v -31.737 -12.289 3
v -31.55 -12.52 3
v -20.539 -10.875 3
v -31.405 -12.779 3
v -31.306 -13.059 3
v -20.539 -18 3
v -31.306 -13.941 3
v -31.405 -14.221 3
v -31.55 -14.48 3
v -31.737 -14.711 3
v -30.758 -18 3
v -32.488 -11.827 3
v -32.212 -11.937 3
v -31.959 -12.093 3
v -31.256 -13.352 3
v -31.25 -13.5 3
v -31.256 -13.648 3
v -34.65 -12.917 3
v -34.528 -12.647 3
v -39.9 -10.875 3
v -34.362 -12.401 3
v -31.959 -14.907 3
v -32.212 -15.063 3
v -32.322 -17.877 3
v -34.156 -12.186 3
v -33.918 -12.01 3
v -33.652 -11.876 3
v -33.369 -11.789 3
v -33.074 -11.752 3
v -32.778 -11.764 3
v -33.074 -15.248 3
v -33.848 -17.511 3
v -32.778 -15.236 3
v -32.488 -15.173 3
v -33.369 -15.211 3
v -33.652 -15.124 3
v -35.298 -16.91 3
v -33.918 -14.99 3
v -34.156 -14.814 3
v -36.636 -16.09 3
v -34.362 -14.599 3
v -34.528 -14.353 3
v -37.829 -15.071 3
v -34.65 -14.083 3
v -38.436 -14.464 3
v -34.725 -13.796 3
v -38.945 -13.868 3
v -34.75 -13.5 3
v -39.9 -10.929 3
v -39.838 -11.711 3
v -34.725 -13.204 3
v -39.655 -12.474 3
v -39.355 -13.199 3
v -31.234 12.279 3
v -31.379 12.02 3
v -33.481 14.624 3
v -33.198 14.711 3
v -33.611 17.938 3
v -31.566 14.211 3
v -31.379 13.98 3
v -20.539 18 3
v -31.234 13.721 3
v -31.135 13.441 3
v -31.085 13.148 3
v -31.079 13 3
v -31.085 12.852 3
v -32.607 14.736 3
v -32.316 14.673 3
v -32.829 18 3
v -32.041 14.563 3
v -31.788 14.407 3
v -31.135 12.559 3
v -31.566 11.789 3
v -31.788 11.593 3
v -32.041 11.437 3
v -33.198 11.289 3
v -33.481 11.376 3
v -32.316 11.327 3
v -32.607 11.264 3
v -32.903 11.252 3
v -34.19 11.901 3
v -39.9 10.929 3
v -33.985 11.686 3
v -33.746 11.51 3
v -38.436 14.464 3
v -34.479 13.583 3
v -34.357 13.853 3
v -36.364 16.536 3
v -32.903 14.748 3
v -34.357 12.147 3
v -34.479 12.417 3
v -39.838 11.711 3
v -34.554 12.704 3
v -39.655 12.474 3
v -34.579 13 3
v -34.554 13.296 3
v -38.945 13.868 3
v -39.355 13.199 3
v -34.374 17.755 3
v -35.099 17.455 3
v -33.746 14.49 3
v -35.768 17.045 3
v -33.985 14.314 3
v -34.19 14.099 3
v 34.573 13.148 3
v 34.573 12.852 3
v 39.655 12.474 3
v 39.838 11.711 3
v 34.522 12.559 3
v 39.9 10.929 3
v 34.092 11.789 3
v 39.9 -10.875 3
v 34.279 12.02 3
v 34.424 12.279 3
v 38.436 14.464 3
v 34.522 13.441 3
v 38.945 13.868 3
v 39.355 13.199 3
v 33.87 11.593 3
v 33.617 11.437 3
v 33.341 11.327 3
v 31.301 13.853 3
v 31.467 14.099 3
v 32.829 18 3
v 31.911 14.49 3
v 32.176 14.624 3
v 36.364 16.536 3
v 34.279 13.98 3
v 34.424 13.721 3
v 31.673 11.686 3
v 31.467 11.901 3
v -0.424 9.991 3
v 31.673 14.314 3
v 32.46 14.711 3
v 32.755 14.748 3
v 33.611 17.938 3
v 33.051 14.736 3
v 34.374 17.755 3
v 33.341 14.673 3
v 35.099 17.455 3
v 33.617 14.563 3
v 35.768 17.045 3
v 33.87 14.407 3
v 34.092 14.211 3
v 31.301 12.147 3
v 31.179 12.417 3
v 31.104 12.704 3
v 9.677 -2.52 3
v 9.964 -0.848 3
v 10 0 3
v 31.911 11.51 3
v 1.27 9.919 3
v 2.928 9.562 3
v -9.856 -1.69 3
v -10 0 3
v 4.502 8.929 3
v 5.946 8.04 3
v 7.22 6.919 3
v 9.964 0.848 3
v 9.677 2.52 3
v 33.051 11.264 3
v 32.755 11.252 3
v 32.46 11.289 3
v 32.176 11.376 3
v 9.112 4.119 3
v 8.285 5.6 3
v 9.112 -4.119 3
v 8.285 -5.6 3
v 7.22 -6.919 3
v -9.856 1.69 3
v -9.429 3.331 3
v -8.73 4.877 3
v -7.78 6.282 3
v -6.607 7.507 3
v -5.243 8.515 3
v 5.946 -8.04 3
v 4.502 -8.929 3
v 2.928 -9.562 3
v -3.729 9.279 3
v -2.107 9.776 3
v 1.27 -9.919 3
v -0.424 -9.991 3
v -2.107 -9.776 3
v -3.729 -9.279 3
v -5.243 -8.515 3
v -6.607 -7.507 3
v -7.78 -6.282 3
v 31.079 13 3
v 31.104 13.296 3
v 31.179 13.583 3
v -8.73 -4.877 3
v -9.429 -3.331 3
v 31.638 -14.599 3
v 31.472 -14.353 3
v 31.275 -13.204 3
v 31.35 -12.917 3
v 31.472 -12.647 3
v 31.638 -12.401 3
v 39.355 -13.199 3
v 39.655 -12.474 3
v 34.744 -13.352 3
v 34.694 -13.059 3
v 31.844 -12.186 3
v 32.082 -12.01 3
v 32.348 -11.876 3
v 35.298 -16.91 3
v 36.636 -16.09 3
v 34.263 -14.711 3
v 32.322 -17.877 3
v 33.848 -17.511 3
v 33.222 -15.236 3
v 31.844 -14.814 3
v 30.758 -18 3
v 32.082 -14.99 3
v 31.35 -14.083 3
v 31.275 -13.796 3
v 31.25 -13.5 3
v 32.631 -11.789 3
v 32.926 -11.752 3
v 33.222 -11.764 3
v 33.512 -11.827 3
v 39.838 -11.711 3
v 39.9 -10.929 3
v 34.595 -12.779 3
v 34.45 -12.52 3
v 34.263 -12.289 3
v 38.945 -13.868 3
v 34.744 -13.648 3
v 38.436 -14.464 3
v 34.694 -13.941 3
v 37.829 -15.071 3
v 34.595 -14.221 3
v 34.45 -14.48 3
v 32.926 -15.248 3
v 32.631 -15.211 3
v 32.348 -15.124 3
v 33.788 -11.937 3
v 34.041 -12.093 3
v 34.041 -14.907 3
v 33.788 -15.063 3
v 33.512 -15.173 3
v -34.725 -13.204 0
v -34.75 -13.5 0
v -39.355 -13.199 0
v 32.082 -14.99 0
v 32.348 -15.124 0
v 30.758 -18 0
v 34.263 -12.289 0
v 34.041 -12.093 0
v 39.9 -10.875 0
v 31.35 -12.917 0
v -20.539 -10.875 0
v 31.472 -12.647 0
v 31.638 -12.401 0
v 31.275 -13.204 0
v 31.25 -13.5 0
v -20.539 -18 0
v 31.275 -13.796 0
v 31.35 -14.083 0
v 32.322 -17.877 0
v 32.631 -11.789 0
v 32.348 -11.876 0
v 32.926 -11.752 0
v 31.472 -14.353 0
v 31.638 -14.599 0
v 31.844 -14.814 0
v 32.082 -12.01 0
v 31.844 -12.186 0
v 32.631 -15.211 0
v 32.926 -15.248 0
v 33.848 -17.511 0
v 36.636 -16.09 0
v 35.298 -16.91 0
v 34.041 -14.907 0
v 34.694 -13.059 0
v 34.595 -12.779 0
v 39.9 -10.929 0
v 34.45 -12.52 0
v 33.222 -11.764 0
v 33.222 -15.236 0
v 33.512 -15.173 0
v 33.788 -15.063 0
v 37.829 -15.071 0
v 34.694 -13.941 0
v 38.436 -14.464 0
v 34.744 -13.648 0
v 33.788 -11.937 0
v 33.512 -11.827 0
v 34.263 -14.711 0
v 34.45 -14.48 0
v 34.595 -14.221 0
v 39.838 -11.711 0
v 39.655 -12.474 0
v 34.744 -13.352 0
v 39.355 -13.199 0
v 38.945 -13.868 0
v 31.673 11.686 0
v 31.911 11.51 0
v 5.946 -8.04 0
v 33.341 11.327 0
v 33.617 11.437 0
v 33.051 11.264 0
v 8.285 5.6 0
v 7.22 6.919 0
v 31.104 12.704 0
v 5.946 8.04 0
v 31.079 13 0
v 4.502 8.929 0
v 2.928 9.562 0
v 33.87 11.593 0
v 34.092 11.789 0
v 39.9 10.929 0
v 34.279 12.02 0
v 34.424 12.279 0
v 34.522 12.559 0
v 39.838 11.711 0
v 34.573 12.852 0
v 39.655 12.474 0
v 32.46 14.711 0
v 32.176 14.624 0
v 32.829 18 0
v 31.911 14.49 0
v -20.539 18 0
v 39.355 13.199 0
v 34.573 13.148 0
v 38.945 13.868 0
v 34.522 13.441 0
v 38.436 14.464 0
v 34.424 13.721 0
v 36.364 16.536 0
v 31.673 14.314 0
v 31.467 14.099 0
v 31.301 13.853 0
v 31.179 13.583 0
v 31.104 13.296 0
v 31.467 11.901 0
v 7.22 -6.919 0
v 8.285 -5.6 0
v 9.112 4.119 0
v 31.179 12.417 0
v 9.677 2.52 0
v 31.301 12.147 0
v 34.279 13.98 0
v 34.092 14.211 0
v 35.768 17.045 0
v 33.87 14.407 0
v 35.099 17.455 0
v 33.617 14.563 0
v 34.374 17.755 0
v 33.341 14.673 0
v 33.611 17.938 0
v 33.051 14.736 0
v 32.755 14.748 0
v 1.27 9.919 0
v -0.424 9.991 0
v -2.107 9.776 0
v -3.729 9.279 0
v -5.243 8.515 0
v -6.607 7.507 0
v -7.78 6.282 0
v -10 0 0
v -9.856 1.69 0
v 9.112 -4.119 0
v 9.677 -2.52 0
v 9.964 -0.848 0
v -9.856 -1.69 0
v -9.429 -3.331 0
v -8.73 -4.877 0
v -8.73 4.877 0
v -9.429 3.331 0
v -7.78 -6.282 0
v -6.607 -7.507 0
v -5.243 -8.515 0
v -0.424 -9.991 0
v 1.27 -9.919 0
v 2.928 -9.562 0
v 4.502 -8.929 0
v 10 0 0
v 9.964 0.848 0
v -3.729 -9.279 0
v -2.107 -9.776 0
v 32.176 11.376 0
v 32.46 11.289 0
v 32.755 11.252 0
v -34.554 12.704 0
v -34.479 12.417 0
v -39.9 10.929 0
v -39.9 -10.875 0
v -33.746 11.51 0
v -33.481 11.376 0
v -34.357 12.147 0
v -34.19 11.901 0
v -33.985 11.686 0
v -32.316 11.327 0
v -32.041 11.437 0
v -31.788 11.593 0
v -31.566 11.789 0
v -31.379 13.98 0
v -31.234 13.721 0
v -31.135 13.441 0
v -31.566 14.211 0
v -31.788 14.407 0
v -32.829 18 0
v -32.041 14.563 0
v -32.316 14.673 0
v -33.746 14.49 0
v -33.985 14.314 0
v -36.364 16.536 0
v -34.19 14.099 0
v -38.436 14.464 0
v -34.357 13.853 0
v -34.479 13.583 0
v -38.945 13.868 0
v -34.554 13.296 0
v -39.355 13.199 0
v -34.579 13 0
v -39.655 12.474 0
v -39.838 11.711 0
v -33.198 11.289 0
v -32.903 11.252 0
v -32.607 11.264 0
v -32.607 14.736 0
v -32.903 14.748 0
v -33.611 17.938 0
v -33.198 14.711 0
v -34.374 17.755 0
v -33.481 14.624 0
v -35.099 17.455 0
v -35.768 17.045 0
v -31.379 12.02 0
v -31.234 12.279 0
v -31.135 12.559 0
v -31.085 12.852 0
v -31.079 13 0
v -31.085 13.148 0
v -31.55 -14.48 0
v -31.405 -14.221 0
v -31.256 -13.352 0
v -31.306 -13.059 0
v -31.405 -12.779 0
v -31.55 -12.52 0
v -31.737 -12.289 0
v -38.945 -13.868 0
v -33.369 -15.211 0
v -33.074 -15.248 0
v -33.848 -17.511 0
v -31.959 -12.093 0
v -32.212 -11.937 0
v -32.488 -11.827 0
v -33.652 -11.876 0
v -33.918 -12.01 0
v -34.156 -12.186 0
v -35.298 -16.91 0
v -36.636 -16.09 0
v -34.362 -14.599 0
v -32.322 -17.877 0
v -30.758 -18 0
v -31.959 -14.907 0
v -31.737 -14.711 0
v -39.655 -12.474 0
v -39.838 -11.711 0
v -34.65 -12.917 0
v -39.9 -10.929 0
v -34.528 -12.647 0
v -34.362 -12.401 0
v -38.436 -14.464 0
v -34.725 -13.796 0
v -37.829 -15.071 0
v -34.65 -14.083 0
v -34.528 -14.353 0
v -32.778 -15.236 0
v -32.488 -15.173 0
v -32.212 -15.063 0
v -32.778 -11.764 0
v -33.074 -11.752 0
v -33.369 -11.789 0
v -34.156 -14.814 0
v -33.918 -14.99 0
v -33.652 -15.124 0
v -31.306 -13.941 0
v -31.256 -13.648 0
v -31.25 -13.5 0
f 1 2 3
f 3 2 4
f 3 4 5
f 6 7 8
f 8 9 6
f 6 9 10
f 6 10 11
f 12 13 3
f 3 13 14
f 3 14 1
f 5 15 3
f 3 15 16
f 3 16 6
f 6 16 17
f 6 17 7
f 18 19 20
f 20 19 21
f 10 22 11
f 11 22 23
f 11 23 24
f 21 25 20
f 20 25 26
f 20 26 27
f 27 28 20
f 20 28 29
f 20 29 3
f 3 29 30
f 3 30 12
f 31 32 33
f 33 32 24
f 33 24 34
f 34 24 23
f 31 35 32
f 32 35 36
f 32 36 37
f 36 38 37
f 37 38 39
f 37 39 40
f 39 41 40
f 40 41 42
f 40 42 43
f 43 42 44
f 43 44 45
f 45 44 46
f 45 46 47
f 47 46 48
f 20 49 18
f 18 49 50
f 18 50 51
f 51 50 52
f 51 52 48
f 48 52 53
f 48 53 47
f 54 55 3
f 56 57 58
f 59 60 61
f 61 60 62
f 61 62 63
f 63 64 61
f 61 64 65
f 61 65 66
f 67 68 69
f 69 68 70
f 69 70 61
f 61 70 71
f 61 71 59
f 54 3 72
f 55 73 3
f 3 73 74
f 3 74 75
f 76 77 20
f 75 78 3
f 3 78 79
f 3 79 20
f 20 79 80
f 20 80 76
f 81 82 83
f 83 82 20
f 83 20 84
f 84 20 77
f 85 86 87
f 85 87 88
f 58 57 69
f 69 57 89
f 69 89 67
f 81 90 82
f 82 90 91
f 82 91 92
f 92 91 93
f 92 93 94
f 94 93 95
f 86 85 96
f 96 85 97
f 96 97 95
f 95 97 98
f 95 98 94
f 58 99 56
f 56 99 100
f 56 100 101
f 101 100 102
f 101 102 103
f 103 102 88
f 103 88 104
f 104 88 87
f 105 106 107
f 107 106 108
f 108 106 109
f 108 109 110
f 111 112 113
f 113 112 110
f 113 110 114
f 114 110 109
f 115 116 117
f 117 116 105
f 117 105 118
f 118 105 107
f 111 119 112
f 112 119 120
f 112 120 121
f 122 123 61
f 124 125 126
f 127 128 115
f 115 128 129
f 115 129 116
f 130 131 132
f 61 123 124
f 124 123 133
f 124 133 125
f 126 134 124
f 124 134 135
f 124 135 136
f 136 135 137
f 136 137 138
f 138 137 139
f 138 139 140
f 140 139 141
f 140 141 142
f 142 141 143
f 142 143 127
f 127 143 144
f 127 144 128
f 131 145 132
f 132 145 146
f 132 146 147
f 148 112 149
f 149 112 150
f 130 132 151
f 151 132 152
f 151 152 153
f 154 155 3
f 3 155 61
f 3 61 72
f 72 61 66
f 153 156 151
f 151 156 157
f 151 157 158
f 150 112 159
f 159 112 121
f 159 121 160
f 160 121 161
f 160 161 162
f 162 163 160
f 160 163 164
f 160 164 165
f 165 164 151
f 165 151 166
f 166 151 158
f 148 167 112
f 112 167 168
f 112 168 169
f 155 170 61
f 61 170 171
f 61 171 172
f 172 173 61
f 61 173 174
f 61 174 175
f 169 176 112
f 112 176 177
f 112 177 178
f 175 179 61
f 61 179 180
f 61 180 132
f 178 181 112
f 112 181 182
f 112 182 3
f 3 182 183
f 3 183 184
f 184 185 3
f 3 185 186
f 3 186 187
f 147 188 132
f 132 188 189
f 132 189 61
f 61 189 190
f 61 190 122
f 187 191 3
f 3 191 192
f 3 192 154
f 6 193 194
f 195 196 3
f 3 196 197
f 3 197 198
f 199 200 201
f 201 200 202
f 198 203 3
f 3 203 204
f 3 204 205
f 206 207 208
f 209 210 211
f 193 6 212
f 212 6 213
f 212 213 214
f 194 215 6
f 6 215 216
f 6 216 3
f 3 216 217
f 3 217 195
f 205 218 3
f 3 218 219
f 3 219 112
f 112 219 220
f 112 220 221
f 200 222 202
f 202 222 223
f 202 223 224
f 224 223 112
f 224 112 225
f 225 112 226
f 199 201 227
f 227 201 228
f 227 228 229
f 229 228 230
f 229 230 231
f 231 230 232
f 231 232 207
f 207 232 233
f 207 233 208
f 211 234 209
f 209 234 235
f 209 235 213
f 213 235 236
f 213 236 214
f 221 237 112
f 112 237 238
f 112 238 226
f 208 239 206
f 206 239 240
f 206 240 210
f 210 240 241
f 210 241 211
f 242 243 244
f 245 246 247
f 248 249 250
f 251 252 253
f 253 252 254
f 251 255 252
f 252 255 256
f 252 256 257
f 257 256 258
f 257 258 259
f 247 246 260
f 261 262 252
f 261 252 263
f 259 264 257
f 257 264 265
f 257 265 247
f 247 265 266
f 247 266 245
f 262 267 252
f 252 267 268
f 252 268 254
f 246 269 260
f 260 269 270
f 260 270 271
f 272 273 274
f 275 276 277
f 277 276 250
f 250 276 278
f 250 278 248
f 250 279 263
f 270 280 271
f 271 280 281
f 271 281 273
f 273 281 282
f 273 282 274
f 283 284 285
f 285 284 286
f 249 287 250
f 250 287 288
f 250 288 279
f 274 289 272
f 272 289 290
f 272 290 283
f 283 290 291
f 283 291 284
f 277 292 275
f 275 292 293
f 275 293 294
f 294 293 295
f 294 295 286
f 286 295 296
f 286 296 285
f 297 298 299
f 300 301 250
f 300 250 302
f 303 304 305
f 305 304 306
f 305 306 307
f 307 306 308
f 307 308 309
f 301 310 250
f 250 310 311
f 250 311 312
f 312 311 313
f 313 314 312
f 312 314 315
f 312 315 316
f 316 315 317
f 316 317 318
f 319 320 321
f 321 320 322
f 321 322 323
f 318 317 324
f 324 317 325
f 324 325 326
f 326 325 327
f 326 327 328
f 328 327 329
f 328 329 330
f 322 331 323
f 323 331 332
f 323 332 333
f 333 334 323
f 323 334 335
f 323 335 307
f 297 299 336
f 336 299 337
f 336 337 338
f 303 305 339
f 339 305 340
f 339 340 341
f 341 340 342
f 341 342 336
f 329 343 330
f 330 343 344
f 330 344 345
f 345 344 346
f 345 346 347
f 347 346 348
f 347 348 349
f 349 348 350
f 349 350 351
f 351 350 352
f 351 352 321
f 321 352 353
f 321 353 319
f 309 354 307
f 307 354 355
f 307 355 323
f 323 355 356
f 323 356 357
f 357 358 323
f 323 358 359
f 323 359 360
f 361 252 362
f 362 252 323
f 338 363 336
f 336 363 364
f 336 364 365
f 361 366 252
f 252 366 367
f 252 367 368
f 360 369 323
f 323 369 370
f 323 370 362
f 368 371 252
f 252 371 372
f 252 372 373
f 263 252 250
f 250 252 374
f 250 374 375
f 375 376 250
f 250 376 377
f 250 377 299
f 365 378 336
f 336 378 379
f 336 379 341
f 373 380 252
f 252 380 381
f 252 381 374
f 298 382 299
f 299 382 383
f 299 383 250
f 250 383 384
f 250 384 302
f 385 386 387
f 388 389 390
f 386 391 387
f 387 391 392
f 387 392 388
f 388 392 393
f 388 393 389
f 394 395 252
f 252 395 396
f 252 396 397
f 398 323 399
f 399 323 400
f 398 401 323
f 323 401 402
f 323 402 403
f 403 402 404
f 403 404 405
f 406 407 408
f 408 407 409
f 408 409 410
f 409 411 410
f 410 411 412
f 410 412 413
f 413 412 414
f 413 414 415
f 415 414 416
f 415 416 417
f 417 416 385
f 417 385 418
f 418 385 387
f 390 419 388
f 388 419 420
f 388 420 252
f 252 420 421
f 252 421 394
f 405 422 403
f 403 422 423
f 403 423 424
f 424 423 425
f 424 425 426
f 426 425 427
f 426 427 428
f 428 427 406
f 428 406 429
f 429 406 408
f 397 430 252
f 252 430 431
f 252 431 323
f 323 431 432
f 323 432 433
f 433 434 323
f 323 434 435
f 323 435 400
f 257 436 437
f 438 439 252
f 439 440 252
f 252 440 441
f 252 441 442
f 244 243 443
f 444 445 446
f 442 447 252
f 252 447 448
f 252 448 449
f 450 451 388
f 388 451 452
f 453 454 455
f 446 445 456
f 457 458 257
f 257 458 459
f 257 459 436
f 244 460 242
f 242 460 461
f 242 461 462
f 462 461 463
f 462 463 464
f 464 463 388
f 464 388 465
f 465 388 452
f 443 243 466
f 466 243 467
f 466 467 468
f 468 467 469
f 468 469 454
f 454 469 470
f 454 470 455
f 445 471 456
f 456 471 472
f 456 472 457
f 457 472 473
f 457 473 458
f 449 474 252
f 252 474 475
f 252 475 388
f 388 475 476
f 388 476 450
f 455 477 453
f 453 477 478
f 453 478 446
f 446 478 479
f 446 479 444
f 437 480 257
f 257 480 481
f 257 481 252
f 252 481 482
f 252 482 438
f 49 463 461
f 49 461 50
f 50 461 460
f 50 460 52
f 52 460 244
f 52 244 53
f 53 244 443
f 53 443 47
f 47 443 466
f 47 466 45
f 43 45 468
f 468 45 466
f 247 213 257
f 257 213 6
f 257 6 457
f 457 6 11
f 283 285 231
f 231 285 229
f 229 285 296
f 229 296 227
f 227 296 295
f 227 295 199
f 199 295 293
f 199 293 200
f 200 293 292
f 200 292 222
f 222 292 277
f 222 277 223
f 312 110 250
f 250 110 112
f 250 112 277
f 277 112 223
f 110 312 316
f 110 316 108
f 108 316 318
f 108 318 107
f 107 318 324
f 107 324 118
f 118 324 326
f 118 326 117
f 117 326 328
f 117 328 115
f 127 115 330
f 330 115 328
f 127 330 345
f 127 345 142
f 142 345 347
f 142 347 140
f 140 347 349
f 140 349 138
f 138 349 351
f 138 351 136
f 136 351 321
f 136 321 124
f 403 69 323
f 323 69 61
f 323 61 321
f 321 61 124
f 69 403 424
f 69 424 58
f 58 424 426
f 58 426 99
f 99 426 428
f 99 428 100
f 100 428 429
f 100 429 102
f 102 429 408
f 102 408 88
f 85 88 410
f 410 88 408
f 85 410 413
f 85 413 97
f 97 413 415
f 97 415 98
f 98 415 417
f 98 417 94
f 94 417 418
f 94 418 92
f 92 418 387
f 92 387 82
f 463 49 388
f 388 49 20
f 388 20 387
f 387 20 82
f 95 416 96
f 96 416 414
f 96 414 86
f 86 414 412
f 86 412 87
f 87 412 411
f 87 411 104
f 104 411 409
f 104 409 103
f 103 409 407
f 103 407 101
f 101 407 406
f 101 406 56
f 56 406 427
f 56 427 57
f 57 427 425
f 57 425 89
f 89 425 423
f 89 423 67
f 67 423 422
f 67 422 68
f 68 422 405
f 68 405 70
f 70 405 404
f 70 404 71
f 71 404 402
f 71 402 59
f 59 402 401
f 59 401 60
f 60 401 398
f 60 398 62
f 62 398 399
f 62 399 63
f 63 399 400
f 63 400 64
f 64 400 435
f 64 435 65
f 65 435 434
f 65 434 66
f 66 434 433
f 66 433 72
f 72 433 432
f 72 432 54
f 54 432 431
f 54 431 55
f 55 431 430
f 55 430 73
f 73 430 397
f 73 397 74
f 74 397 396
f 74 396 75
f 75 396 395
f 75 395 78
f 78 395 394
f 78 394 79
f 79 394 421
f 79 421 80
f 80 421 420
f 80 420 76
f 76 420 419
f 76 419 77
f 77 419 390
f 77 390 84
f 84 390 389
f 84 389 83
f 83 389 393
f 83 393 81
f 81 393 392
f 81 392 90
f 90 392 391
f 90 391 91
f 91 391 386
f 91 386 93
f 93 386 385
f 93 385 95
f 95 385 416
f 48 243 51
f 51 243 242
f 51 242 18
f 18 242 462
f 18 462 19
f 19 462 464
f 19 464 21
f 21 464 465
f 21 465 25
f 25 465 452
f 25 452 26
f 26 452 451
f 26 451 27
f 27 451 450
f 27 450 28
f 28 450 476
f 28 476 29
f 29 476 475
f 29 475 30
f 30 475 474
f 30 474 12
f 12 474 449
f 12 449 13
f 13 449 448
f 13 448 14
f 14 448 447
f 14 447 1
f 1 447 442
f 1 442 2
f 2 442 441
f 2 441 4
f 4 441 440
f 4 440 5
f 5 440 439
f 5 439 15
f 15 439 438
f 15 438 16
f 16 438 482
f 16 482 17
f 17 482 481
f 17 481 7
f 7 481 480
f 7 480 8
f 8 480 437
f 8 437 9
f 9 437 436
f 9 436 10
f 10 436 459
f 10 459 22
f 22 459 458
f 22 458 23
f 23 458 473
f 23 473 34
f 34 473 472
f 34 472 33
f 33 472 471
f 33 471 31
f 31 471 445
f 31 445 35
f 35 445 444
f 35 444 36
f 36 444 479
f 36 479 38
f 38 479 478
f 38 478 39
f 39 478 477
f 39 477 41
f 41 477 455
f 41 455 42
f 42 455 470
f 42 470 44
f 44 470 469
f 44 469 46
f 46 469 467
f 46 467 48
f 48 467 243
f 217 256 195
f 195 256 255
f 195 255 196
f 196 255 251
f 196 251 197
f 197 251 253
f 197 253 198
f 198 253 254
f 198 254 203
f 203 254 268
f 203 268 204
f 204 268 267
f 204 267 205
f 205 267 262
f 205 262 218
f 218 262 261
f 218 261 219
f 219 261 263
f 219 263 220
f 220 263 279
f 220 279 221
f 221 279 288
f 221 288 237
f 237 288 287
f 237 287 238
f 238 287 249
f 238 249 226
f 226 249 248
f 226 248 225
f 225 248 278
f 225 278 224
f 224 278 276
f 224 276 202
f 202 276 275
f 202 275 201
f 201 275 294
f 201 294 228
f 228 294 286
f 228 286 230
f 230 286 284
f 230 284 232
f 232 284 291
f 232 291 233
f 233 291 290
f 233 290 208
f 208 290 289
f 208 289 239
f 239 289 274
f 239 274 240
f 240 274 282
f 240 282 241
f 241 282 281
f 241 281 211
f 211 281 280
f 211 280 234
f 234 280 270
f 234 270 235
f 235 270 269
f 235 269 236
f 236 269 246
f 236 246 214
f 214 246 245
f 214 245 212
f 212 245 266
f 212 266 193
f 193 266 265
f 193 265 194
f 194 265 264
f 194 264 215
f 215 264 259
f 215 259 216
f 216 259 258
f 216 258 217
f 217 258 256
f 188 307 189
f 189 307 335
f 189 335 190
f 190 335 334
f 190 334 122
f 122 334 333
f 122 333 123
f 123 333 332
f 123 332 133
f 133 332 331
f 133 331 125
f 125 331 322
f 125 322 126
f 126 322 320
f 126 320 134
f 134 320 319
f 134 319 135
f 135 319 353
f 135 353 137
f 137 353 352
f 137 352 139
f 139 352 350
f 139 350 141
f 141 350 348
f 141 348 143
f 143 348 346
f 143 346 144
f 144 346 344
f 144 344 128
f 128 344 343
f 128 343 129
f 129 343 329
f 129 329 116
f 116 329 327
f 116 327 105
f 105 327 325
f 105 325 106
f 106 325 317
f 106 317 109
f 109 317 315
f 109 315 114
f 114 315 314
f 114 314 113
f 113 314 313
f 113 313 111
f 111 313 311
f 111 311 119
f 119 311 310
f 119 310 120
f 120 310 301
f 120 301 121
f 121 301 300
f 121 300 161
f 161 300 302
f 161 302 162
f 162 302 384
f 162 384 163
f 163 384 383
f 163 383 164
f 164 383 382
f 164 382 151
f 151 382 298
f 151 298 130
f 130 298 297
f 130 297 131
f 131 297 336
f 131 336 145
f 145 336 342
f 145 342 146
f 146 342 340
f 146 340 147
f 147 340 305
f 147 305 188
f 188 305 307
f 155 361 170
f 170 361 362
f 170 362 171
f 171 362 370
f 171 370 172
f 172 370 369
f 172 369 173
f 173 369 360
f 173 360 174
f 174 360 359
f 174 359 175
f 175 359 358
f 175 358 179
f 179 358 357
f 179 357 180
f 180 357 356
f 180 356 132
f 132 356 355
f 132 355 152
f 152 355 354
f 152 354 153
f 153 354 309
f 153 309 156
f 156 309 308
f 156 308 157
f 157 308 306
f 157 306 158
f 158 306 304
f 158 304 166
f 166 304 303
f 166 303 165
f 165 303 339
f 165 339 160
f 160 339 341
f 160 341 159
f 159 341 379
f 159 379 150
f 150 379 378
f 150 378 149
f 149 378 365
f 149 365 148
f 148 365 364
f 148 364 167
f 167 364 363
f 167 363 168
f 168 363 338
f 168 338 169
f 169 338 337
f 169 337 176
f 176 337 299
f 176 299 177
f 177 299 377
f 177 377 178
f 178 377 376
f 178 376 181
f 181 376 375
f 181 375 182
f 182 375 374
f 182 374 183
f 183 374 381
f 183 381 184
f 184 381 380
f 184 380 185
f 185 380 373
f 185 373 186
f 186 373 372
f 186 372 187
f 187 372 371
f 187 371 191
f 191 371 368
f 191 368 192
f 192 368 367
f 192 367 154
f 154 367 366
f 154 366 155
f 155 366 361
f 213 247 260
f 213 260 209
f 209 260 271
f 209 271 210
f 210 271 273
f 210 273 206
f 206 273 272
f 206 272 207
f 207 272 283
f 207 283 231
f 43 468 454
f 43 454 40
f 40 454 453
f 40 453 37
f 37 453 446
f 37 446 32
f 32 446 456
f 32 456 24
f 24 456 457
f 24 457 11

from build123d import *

# Parameters (mm, degrees)
SKETCH1_R           = 1.75
SKETCH1_R_2         = 10
BOSS_EXTRUDE1_DEPTH = 3
FILLET1_R           = 10


with BuildPart() as part:
    # Sketch1 → Boss-Extrude1 (new body)
    with BuildSketch(Plane.XY):
        with BuildLine():
            Line((-39.9, -10.928932188), (-39.9, 10.928932188))
            ThreePointArc((-39.9, 10.928932188), (-39.519397663, 12.84234935), (-38.435533906, 14.464466094))
            Line((-38.435533906, 14.464466094), (-36.364466094, 16.535533906))
            ThreePointArc((-36.364466094, 16.535533906), (-34.74234935, 17.619397663), (-32.828932188, 18))
            Line((-32.828932188, 18), (32.828932188, 18))
            ThreePointArc((32.828932188, 18), (34.74234935, 17.619397663), (36.364466094, 16.535533906))
            Line((36.364466094, 16.535533906), (38.435533906, 14.464466094))
            ThreePointArc((38.435533906, 14.464466094), (39.519397663, 12.84234935), (39.9, 10.928932188))
            Line((39.9, 10.928932188), (39.9, -10.928932188))
            ThreePointArc((39.9, -10.928932188), (39.519397663, -12.84234935), (38.435533906, -14.464466094))
            Line((38.435533906, -14.464466094), (34.9, -18))
            Line((34.9, -18), (8.1, -18))
            Line((8.1, -18), (-8.1, -18))
            Line((-8.1, -18), (-34.9, -18))
            Line((-34.9, -18), (-38.435533906, -14.464466094))
            ThreePointArc((-38.435533906, -14.464466094), (-39.519397663, -12.84234935), (-39.9, -10.928932188))
        make_face()
        with Locations((-32.828932188, 13)):
            Circle(SKETCH1_R, mode=Mode.SUBTRACT)
        with Locations((-33, -13.5)):
            Circle(SKETCH1_R, mode=Mode.SUBTRACT)
        with Locations(Location((33, -13.5, 0), (0, 0, 180))):
            Circle(SKETCH1_R, mode=Mode.SUBTRACT)
        with Locations(Location((32.828932188, 13, 0), (0, 0, 180))):
            Circle(SKETCH1_R, mode=Mode.SUBTRACT)
        Circle(SKETCH1_R_2, mode=Mode.SUBTRACT)
    extrude(amount=BOSS_EXTRUDE1_DEPTH)

    # Fillet1
    fillet1_edges = [part.edges().sort_by_distance(p)[0] for p in [
        (34.9, -18, 1.5),
        (-34.9, -18, 1.5),
    ]]
    fillet(fillet1_edges, radius=FILLET1_R)


solid = part.part
